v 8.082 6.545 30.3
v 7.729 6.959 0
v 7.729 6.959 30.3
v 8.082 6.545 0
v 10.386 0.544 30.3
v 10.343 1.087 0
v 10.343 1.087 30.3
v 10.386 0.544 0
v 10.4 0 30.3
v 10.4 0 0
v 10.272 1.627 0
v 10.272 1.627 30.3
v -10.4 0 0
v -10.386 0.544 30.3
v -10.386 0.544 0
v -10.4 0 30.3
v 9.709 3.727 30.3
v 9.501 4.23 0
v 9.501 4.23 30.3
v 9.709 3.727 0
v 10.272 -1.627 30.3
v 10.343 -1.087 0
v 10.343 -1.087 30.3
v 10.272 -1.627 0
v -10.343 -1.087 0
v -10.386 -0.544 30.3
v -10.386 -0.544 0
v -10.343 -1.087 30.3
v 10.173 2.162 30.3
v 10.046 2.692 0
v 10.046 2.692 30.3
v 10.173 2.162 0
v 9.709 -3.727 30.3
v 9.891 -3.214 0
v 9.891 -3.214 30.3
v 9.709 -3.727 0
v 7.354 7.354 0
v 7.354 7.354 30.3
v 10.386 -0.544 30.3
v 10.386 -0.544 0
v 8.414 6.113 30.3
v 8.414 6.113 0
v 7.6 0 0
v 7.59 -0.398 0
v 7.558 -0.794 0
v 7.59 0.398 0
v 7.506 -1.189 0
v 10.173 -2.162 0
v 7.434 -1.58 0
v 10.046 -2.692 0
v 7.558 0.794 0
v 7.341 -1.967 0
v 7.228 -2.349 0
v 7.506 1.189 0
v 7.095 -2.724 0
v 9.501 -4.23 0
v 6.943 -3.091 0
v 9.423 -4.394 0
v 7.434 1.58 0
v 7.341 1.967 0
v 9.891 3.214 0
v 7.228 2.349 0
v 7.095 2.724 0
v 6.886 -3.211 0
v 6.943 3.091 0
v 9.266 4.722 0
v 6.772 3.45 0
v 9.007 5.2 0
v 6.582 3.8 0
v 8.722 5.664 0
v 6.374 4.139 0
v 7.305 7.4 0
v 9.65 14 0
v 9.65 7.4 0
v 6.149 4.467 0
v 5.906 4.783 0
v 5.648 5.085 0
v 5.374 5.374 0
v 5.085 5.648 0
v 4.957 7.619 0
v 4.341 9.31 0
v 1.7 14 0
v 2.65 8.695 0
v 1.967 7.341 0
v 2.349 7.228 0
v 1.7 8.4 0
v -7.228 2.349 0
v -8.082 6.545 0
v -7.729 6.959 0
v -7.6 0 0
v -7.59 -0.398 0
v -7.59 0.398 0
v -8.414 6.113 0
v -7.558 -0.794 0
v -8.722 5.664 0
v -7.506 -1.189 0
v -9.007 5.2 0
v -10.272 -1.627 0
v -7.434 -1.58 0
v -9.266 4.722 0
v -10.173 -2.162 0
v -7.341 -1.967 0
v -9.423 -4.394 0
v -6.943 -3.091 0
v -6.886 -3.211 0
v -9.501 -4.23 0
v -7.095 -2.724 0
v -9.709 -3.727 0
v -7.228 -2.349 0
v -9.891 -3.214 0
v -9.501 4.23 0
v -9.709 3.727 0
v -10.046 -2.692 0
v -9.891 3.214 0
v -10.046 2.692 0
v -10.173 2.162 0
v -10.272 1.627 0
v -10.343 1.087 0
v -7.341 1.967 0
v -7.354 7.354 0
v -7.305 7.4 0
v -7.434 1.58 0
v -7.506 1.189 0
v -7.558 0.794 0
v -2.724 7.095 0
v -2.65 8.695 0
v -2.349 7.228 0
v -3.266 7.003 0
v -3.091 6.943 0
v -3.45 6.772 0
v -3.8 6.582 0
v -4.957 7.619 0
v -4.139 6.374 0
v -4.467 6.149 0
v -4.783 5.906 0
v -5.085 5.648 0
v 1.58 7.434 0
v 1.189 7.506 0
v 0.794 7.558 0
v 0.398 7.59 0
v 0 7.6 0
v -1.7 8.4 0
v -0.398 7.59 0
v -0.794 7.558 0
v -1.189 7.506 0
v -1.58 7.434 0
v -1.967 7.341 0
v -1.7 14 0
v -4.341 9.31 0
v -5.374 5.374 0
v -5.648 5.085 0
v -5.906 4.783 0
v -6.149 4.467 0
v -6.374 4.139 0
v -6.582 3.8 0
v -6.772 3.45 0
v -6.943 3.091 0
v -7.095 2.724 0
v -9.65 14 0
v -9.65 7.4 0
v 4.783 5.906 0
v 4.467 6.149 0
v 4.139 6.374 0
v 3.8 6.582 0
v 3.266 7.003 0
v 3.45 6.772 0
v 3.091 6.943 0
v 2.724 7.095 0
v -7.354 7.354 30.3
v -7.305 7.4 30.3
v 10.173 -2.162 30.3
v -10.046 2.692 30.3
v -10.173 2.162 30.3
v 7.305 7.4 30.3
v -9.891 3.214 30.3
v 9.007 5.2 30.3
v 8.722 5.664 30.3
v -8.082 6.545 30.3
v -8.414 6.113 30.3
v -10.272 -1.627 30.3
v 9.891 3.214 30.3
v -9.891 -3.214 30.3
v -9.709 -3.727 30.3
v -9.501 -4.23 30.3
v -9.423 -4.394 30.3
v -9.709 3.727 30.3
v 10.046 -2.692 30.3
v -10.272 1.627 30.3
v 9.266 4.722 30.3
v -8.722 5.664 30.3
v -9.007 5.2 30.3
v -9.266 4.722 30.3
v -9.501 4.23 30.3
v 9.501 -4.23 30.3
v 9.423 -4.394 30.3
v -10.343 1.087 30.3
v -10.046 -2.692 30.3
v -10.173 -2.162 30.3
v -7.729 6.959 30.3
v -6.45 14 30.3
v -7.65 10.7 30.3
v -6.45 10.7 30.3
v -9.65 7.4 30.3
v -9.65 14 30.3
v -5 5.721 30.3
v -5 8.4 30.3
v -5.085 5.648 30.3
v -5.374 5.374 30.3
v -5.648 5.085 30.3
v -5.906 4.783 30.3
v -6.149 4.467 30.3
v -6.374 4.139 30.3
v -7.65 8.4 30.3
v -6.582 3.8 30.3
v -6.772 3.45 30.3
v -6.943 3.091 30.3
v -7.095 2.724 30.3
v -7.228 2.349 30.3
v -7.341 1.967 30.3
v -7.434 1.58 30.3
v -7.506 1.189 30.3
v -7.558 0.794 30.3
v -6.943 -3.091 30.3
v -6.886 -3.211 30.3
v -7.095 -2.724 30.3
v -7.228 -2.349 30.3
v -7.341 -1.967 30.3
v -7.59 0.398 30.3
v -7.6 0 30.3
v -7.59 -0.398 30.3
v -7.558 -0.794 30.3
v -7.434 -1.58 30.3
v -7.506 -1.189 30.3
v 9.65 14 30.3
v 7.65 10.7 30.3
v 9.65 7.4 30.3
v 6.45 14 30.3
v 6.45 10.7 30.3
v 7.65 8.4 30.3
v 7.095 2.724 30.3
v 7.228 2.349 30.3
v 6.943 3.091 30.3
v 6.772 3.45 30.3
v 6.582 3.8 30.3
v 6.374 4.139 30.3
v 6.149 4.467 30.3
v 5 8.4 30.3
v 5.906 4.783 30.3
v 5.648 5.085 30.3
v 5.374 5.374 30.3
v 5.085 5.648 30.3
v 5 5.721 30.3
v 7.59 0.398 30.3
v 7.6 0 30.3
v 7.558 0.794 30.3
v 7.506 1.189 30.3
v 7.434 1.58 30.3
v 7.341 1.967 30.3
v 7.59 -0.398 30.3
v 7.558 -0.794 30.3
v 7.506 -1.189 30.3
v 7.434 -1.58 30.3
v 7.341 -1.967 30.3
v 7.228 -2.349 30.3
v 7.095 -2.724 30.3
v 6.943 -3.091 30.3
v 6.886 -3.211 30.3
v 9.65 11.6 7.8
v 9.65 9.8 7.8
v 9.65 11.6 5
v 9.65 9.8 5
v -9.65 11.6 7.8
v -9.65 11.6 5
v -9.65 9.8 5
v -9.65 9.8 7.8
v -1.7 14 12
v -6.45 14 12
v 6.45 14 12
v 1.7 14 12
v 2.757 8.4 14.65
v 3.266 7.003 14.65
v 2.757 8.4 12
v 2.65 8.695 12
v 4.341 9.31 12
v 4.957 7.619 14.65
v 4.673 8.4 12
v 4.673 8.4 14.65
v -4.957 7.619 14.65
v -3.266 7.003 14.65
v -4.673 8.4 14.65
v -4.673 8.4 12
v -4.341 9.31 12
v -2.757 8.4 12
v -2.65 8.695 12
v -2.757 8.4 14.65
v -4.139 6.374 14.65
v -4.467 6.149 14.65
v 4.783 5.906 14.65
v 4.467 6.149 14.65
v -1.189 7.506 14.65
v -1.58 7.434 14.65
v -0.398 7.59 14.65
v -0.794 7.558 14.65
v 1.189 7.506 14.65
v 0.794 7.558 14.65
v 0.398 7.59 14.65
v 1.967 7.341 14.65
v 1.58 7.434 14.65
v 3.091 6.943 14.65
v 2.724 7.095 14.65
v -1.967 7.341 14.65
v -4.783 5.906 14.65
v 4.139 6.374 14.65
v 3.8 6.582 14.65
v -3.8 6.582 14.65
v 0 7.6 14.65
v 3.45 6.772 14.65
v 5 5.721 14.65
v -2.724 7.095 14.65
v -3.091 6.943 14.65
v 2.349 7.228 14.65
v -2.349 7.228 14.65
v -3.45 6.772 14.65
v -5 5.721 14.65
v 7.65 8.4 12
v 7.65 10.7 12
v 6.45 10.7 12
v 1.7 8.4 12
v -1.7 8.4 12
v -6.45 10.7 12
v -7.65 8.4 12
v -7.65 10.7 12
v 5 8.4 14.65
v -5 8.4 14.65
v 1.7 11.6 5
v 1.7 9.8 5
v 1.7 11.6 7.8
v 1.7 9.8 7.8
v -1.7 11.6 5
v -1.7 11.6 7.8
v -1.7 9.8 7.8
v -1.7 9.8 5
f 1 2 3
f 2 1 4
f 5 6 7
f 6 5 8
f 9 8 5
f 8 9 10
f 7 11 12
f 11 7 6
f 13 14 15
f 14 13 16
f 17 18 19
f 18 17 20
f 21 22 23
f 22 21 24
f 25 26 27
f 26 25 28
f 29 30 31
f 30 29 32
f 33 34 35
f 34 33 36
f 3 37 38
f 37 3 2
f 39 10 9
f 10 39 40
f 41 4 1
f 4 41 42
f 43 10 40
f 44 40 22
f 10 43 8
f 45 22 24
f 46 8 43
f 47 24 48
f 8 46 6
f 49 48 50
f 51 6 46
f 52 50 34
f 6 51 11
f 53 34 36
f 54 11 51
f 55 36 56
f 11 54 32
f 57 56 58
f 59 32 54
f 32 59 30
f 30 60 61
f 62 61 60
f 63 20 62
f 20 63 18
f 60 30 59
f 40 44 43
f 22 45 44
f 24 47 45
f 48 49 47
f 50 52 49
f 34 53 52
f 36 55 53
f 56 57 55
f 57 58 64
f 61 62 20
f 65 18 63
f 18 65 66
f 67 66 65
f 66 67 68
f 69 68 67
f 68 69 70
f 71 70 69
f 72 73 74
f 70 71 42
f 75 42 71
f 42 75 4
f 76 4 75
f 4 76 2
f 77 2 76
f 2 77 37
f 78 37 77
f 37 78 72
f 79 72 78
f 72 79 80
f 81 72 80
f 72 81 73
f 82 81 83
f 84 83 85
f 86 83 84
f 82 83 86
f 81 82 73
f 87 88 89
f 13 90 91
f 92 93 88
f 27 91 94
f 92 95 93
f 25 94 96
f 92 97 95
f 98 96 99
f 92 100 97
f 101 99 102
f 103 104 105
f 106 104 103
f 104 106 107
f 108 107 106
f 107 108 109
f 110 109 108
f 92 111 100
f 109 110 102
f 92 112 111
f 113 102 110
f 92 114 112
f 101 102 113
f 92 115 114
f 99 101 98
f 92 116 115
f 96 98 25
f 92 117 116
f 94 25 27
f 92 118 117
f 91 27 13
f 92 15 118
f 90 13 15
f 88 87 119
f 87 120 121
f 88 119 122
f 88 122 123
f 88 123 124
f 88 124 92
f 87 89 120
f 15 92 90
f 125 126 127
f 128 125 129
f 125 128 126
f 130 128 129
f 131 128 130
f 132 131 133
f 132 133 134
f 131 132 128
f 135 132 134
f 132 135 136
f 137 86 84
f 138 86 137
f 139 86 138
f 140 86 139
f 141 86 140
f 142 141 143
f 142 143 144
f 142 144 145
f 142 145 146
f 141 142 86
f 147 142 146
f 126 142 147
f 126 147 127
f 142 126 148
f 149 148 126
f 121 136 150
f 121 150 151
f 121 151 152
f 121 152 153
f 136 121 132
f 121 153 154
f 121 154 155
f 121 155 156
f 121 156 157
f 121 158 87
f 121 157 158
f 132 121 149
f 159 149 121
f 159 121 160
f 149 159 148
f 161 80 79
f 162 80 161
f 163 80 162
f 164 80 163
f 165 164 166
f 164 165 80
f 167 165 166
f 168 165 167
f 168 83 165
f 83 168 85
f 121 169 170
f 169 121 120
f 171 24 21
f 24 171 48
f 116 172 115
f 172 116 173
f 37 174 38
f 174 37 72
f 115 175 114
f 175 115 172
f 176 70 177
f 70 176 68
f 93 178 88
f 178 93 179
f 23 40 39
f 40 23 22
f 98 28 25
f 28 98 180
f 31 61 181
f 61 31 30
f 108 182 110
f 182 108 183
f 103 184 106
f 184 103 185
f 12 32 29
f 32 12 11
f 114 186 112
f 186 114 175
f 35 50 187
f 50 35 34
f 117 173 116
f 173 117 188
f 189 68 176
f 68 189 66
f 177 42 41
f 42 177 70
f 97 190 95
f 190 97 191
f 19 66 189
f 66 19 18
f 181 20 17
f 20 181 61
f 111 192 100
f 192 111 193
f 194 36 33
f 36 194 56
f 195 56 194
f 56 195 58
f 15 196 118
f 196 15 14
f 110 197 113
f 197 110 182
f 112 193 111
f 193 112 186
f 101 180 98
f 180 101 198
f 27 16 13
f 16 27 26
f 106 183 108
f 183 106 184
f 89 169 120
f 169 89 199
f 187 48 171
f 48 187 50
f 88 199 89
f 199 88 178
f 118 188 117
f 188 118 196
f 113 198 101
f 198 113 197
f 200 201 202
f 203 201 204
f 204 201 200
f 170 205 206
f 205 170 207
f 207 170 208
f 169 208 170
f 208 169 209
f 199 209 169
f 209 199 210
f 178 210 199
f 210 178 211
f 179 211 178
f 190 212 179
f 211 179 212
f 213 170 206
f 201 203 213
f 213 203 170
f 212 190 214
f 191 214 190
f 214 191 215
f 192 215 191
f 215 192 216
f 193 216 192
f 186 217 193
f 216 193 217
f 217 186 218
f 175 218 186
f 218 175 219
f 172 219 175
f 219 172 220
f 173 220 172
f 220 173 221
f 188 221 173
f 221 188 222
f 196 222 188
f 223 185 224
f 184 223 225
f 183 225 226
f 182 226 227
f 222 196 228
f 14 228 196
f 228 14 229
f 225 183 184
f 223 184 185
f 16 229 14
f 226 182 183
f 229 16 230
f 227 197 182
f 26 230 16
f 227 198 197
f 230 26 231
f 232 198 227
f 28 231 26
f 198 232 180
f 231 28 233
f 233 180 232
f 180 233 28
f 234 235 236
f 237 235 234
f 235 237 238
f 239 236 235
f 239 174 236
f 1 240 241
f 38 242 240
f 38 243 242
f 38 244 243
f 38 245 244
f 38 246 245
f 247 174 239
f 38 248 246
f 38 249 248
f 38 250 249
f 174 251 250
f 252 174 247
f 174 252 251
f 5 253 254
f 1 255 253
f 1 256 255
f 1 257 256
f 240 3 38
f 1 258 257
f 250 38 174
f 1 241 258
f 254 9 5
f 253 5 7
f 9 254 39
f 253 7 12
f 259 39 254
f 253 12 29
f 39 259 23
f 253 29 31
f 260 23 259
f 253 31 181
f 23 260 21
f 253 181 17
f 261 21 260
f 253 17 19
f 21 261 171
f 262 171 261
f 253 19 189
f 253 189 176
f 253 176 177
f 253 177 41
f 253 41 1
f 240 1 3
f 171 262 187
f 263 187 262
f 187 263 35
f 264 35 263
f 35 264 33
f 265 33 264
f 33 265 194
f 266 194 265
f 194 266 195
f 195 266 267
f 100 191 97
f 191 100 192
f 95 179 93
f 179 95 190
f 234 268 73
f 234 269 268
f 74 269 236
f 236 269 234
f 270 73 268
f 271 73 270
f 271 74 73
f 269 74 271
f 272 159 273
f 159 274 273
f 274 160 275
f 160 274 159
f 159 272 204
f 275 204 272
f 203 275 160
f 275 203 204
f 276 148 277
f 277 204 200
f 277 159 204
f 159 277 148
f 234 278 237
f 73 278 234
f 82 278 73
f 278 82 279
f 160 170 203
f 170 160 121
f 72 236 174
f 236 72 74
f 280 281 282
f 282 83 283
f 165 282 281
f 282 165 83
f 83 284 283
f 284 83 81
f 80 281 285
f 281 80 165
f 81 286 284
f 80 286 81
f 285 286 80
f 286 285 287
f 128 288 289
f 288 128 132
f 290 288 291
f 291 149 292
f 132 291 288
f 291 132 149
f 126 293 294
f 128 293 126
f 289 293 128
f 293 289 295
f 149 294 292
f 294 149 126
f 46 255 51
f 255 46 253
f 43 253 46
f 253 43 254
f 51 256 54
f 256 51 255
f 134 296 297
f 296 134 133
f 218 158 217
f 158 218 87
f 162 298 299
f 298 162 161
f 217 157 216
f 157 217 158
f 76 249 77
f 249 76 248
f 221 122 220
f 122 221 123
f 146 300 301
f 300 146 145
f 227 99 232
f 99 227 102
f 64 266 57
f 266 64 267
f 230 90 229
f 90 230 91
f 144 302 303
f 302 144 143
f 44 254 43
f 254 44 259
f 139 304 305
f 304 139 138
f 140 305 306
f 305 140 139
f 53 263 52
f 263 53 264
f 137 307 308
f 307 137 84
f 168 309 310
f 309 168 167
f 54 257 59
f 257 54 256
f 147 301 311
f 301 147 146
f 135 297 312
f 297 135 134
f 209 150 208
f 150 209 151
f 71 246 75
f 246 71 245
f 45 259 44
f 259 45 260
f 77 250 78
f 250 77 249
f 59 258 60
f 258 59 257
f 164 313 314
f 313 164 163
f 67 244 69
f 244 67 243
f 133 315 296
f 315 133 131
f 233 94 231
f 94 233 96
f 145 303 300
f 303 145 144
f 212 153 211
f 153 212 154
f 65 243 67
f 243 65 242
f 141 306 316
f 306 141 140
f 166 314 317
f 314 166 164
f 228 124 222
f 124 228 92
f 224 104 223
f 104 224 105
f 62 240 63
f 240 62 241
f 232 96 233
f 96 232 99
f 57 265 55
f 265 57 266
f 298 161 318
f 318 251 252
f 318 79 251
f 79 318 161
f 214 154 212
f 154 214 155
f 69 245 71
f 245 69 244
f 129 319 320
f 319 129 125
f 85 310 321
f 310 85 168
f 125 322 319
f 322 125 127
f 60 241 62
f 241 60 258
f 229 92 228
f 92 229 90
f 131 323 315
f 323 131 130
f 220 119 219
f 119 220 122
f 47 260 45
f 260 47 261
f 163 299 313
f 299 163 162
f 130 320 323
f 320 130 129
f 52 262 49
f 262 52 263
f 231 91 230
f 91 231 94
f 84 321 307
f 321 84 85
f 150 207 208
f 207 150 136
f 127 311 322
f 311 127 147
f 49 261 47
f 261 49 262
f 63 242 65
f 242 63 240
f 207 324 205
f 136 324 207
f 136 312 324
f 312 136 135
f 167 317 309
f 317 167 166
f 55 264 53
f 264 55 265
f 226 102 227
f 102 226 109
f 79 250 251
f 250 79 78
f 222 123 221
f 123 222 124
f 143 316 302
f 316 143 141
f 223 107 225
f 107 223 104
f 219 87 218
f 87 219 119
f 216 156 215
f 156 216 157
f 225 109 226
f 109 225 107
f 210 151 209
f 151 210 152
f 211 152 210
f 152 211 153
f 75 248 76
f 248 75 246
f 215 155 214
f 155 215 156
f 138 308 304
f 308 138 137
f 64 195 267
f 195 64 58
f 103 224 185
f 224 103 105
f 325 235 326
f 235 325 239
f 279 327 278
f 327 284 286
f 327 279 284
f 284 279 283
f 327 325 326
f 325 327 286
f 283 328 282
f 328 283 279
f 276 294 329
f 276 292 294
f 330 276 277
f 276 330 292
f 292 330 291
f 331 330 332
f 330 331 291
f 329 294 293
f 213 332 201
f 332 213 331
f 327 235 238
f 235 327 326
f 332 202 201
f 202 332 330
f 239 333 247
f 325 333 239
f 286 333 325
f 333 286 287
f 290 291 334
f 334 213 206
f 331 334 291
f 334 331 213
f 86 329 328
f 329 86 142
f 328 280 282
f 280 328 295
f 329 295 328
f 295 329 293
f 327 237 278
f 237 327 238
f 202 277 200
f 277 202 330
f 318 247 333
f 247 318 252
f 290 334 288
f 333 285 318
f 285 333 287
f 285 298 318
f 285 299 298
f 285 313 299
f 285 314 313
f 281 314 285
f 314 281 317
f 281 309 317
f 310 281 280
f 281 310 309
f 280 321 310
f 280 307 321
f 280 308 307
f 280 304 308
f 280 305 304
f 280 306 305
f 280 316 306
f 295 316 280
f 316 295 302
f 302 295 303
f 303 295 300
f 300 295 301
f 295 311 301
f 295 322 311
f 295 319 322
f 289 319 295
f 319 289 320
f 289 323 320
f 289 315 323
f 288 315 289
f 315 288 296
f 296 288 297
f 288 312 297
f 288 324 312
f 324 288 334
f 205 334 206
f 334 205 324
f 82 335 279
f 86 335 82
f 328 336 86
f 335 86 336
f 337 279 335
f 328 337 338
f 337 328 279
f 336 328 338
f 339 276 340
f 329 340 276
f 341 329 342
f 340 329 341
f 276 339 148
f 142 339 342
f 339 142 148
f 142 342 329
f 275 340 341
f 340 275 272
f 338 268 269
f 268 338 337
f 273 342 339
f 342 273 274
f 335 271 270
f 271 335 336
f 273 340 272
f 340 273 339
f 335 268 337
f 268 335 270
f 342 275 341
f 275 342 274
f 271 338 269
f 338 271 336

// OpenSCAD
// ====================================================================
// BMP280 UK Pipe Clamp
// Cleaned: Top cylinder arch/bridge cut flush to open slide path
// ====================================================================

$fn = 120;

// --- Pipe & Clip Geometry ---
pipe_od          = 15.2;   // 15mm metric nominal
pipe_r           = pipe_od / 2;
wall_th          = 2.8;    // Spring wall thickness
clip_angle       = 230;    // Wrap angle (>180 gives snap retention)

// --- PCB Pocket & Slide-In Rails ---
pcb_w            = 15.3;   // Width clearance for 15.0mm board
pcb_l            = 15.3;   // Length
track_depth      = 2.3;    // Thickness allowance for PCB + thermal pad
rail_lip         = 1.2;    // Overlap on left/right edges to trap PCB

// --- Thermal Pad Window ---
sensor_window_w  = 10.0;   // Window directly exposing pipe surface
sensor_window_l  = 10.0;

// --- Cable Slot (Open from the top) ---
cable_ch_w       = 3.4;    // Cleared width (cable drops in freely)
cable_run_len    = 12.0;   // Length of strain relief lead

// Overall length
total_len        = pcb_l + cable_run_len + 3.0; // ~30.3mm
overlap          = 1.0;    // Eliminates zero-thickness CSG artifacts

// --- Zip-Tie Strain Relief ---
tie_w            = 2.8;   // Slot width along Z (fits standard 2.5mm miniature zip-tie)
tie_th           = 1.8;   // Slot thickness/depth in Y
tie_z_pos        = 5.0;   // Height from bottom edge

module prewired_pipe_clamp() {
    difference() {
        // --- 1. Outer Solid ---
        union() {
            // Main pipe-gripping cylinder
            cylinder(r = pipe_r + wall_th, h = total_len);
            
            // Sensor and cable platform
            translate([- (pcb_w + 4.0)/2, pipe_r - 0.2, 0])
                cube([pcb_w + 4.0, wall_th + 3.8, total_len]);
        }
        
        // --- 2. Pipe Bore (Cuts past both ends) ---
        translate([0, 0, -overlap])
            cylinder(r = pipe_r, h = total_len + 2 * overlap);
        
        // --- 3. C-Clip Snap Mouth Cutout (Cuts past both ends) ---
        translate([0, 0, -overlap])
            rotate([0, 0, - (360 - clip_angle) / 2 - 90])
                wedge_cut(r = pipe_r + wall_th + 5, h = total_len + 2 * overlap, a = 360 - clip_angle);

        // --- 4. PCB Slide-In Pocket (Runs cleanly out top end) ---
        translate([- pcb_w / 2, pipe_r + 0.8, cable_run_len])
            cube([pcb_w, track_depth, pcb_l + 10]);
            
        // Top opening between side rails
        translate([- (pcb_w - 2 * rail_lip) / 2, pipe_r + 0.8 + track_depth - 0.1, cable_run_len])
            cube([pcb_w - 2 * rail_lip, 10, pcb_l + 10]);

        // --- 5. Direct Thermal Window ---
        translate([- sensor_window_w / 2, pipe_r - 2, cable_run_len + (pcb_l - sensor_window_l)/2])
            cube([sensor_window_w, 4, sensor_window_l]);

        // --- 5b. TOP ARCH CLEARANCE CUT (Your exact fix made parametric) ---
        // Extends the thermal window opening straight out the top end (Z)
        translate([- sensor_window_w / 2, pipe_r - 2, cable_run_len + (pcb_l - sensor_window_l)/2])
            cube([sensor_window_w, wall_th + 10, total_len]);

        // --- 6. Open Cable Drop-In Slot (Cuts through Z = 0) ---
        translate([- cable_ch_w / 2, pipe_r + 0.8, -overlap])
            cube([cable_ch_w, 10, cable_run_len + overlap + 0.1]);

        // --- 7. Under-Slung Zip-Tie Tunnel ---
        translate([- (pcb_w + 6)/2, pipe_r + 2.2, tie_z_pos])
            cube([pcb_w + 6, tie_th, tie_w]);
    
        // --- 8. Mouth Chamfers ---
        for (side = [-1, 1]) {
            rotate([0, 0, side * (clip_angle / 2 - 90)])
                translate([0, pipe_r + wall_th / 2, total_len / 2])
                    rotate([0, 0, 45])
                        cube([1.8, 1.8, total_len + 2 * overlap], center = true);
        }
    }
}

// Wedge helper with clean outer radius bounds
module wedge_cut(r, h, a) {
    linear_extrude(height = h) {
        polygon(points = [
            [0, 0],
            [r * cos(0), r * sin(0)],
            [r * cos(a/2), r * sin(a/2)],
            [r * cos(a), r * sin(a)]
        ]);
    }
}

prewired_pipe_clamp();
